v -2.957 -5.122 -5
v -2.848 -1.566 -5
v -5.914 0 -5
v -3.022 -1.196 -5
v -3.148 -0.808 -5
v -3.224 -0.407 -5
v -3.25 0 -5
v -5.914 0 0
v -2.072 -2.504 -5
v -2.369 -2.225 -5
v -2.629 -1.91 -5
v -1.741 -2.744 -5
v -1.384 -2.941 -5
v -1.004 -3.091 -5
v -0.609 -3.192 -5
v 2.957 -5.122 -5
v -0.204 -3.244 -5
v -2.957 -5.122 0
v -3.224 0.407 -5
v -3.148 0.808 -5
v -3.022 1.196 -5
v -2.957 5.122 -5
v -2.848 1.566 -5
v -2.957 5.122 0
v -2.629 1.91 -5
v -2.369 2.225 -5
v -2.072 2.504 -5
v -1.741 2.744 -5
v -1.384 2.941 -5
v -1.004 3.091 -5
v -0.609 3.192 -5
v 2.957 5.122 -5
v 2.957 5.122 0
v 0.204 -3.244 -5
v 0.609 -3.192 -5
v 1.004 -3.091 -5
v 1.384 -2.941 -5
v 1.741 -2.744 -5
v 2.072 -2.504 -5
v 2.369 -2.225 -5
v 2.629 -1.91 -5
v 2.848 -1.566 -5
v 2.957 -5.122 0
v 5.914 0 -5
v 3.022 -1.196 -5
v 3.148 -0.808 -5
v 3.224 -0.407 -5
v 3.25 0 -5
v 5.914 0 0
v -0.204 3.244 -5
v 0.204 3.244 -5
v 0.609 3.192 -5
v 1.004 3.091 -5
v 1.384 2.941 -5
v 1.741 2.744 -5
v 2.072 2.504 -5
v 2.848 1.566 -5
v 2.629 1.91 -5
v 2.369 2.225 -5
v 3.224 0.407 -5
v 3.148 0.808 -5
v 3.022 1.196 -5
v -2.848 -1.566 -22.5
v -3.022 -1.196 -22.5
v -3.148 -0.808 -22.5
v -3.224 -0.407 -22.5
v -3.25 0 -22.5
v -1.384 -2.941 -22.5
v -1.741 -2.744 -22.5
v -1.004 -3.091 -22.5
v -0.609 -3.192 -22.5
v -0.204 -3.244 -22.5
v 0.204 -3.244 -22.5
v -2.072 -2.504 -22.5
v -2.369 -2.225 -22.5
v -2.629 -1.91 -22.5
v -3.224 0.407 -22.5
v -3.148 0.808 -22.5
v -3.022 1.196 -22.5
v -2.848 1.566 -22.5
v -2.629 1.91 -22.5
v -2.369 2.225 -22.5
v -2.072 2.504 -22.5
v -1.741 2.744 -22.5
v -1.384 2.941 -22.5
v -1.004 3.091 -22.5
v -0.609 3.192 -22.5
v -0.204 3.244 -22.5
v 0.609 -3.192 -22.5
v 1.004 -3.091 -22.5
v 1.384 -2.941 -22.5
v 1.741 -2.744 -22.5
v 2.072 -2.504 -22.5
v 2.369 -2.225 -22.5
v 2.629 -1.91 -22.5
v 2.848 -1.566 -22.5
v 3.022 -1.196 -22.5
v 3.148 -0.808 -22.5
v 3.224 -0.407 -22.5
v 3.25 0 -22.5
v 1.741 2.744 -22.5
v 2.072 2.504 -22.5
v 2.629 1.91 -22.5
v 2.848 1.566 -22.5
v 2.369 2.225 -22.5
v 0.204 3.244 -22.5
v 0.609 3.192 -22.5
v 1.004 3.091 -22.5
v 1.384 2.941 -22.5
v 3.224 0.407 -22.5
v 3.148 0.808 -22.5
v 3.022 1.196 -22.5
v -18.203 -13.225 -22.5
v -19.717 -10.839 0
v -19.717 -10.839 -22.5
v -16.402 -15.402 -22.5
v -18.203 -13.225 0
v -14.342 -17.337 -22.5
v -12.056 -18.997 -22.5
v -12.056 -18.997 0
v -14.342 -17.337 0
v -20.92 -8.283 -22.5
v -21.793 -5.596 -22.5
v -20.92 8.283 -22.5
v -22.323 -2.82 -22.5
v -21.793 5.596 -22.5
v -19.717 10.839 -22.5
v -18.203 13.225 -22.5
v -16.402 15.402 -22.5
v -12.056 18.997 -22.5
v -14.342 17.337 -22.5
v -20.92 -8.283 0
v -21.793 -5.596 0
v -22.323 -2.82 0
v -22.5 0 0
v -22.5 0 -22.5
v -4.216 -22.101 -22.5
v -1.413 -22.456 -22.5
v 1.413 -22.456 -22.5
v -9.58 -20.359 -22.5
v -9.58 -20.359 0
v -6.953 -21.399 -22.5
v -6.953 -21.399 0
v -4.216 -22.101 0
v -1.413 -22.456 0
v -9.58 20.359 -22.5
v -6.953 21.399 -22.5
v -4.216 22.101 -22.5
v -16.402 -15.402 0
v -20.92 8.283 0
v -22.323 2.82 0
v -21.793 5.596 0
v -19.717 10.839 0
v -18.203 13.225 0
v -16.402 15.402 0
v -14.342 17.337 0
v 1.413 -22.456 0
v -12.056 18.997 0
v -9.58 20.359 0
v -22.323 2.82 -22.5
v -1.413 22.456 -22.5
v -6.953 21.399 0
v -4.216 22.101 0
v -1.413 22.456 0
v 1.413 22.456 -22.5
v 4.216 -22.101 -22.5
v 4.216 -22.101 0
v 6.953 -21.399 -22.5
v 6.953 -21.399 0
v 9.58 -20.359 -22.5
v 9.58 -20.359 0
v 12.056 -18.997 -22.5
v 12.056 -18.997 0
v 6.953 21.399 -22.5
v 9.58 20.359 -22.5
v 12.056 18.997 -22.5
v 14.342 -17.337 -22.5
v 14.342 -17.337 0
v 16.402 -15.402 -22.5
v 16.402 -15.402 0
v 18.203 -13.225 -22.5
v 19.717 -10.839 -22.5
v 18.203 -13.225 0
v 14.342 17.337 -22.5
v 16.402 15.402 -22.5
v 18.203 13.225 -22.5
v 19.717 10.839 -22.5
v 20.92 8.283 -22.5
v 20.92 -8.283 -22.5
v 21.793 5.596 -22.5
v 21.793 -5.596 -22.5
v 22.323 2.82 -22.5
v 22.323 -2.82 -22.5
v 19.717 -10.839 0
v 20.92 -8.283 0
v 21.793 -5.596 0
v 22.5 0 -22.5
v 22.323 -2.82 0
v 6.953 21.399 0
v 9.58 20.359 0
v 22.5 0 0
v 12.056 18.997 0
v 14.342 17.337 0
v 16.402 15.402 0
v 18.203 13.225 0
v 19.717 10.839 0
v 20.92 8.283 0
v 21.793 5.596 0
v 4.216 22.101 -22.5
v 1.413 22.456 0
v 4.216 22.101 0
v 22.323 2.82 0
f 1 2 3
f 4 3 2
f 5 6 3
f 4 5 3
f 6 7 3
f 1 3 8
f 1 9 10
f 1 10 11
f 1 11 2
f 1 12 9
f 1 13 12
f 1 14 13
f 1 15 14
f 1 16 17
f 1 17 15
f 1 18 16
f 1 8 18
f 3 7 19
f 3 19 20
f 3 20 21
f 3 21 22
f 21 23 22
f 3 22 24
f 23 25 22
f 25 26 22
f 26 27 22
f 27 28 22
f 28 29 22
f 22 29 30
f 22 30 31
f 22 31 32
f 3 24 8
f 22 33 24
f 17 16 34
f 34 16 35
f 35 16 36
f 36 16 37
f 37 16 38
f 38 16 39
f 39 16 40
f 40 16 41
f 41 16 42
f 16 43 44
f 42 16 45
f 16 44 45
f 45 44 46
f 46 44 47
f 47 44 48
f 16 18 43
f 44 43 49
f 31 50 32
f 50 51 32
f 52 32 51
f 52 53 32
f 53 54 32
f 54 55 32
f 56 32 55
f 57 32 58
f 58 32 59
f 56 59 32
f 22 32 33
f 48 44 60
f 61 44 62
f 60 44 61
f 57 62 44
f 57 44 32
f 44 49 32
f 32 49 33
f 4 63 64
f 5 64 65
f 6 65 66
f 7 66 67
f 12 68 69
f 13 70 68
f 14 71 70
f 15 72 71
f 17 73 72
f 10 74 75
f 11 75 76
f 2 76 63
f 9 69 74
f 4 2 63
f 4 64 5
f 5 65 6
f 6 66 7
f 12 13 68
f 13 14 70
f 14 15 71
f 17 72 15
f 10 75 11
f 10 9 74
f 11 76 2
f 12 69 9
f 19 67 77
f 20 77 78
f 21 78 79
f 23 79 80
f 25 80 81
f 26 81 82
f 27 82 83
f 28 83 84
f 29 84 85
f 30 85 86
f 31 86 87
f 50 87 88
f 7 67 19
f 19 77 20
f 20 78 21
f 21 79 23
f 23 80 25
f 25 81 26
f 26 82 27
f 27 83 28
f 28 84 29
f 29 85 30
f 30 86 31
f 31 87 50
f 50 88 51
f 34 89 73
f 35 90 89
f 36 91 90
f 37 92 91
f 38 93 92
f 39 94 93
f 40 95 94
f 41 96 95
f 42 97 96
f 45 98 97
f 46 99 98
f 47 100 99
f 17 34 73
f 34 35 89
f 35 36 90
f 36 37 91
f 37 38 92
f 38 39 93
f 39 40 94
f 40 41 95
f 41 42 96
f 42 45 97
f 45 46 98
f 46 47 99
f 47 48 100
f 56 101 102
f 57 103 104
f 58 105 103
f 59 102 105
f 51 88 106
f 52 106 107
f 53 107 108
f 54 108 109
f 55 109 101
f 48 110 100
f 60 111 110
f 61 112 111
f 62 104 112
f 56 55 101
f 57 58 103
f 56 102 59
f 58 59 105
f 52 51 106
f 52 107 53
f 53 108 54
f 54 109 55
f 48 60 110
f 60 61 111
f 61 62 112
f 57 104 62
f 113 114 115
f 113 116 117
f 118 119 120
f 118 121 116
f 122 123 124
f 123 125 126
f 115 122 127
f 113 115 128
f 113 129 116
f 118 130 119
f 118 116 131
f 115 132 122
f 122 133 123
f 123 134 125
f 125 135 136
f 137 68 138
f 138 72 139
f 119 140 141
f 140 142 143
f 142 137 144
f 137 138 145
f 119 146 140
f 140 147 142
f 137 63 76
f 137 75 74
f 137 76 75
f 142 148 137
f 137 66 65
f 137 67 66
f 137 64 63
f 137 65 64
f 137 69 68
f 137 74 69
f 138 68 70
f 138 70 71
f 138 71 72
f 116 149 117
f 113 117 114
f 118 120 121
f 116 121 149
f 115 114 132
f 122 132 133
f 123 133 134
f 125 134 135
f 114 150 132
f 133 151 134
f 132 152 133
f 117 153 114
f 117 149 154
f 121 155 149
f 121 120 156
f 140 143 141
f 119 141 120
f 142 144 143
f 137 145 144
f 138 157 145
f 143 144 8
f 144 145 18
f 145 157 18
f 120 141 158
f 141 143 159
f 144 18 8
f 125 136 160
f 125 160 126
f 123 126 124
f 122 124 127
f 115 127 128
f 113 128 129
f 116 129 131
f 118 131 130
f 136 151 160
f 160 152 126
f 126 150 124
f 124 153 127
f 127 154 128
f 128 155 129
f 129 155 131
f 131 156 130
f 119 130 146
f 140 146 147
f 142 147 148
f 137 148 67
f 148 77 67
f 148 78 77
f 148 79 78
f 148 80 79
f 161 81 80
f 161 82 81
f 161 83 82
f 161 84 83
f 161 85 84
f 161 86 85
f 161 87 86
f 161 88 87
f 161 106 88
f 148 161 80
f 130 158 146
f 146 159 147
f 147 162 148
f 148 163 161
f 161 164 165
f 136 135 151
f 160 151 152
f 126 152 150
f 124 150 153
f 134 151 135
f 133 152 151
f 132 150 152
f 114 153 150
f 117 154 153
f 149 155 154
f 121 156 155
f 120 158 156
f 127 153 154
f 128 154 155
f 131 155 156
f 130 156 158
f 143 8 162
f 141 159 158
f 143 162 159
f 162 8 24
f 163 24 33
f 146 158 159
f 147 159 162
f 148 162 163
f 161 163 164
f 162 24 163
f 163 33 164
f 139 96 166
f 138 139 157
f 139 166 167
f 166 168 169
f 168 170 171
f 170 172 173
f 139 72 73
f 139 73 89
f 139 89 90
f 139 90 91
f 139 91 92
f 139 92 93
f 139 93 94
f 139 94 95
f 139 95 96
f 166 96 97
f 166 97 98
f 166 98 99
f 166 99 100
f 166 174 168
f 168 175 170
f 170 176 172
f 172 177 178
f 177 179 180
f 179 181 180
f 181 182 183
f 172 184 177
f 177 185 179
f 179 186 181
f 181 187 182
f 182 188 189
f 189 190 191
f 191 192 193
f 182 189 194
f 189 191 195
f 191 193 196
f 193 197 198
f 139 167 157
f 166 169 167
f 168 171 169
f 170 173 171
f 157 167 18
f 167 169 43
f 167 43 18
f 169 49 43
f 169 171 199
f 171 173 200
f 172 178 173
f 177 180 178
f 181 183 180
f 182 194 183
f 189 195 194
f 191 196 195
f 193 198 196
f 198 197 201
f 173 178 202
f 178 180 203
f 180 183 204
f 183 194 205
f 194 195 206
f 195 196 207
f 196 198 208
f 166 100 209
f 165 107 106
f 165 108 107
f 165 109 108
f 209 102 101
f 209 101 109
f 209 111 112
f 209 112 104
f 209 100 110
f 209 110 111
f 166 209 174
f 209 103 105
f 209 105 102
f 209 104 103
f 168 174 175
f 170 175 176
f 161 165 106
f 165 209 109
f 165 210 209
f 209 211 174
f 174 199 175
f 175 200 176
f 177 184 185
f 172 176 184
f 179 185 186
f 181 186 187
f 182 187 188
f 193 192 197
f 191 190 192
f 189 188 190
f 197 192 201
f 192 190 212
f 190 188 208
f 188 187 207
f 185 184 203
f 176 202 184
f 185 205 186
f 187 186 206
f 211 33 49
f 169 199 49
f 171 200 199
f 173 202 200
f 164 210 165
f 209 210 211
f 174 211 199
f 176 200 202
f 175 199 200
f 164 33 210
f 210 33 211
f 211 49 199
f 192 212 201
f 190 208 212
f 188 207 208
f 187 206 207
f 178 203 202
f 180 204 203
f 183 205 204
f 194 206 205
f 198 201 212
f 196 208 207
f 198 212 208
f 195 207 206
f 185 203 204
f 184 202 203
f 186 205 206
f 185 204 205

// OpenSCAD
$fn = 50;


difference() {
	union() {
		translate(v = [0, 0, -22.5000000000]) {
			cylinder(h = 22.5000000000, r = 22.5000000000);
		}
	}
	union() {
		translate(v = [0, 0, 0]) {
			rotate(a = [0, 0, 0]) {
				difference() {
					union() {
						translate(v = [0, 0, -5]) {
							linear_extrude(height = 5) {
								polygon(points = [[5.9142500000, 0.0000000000], [2.9571250000, 5.1218907443], [-2.9571250000, 5.1218907443], [-5.9142500000, 0.0000000000], [-2.9571250000, -5.1218907443], [2.9571250000, -5.1218907443]]);
							}
						}
					}
					union();
				}
			}
		}
		#translate(v = [0, 0, -100.0000000000]) {
			cylinder(h = 200, r = 3.2500000000);
		}
	}
}
